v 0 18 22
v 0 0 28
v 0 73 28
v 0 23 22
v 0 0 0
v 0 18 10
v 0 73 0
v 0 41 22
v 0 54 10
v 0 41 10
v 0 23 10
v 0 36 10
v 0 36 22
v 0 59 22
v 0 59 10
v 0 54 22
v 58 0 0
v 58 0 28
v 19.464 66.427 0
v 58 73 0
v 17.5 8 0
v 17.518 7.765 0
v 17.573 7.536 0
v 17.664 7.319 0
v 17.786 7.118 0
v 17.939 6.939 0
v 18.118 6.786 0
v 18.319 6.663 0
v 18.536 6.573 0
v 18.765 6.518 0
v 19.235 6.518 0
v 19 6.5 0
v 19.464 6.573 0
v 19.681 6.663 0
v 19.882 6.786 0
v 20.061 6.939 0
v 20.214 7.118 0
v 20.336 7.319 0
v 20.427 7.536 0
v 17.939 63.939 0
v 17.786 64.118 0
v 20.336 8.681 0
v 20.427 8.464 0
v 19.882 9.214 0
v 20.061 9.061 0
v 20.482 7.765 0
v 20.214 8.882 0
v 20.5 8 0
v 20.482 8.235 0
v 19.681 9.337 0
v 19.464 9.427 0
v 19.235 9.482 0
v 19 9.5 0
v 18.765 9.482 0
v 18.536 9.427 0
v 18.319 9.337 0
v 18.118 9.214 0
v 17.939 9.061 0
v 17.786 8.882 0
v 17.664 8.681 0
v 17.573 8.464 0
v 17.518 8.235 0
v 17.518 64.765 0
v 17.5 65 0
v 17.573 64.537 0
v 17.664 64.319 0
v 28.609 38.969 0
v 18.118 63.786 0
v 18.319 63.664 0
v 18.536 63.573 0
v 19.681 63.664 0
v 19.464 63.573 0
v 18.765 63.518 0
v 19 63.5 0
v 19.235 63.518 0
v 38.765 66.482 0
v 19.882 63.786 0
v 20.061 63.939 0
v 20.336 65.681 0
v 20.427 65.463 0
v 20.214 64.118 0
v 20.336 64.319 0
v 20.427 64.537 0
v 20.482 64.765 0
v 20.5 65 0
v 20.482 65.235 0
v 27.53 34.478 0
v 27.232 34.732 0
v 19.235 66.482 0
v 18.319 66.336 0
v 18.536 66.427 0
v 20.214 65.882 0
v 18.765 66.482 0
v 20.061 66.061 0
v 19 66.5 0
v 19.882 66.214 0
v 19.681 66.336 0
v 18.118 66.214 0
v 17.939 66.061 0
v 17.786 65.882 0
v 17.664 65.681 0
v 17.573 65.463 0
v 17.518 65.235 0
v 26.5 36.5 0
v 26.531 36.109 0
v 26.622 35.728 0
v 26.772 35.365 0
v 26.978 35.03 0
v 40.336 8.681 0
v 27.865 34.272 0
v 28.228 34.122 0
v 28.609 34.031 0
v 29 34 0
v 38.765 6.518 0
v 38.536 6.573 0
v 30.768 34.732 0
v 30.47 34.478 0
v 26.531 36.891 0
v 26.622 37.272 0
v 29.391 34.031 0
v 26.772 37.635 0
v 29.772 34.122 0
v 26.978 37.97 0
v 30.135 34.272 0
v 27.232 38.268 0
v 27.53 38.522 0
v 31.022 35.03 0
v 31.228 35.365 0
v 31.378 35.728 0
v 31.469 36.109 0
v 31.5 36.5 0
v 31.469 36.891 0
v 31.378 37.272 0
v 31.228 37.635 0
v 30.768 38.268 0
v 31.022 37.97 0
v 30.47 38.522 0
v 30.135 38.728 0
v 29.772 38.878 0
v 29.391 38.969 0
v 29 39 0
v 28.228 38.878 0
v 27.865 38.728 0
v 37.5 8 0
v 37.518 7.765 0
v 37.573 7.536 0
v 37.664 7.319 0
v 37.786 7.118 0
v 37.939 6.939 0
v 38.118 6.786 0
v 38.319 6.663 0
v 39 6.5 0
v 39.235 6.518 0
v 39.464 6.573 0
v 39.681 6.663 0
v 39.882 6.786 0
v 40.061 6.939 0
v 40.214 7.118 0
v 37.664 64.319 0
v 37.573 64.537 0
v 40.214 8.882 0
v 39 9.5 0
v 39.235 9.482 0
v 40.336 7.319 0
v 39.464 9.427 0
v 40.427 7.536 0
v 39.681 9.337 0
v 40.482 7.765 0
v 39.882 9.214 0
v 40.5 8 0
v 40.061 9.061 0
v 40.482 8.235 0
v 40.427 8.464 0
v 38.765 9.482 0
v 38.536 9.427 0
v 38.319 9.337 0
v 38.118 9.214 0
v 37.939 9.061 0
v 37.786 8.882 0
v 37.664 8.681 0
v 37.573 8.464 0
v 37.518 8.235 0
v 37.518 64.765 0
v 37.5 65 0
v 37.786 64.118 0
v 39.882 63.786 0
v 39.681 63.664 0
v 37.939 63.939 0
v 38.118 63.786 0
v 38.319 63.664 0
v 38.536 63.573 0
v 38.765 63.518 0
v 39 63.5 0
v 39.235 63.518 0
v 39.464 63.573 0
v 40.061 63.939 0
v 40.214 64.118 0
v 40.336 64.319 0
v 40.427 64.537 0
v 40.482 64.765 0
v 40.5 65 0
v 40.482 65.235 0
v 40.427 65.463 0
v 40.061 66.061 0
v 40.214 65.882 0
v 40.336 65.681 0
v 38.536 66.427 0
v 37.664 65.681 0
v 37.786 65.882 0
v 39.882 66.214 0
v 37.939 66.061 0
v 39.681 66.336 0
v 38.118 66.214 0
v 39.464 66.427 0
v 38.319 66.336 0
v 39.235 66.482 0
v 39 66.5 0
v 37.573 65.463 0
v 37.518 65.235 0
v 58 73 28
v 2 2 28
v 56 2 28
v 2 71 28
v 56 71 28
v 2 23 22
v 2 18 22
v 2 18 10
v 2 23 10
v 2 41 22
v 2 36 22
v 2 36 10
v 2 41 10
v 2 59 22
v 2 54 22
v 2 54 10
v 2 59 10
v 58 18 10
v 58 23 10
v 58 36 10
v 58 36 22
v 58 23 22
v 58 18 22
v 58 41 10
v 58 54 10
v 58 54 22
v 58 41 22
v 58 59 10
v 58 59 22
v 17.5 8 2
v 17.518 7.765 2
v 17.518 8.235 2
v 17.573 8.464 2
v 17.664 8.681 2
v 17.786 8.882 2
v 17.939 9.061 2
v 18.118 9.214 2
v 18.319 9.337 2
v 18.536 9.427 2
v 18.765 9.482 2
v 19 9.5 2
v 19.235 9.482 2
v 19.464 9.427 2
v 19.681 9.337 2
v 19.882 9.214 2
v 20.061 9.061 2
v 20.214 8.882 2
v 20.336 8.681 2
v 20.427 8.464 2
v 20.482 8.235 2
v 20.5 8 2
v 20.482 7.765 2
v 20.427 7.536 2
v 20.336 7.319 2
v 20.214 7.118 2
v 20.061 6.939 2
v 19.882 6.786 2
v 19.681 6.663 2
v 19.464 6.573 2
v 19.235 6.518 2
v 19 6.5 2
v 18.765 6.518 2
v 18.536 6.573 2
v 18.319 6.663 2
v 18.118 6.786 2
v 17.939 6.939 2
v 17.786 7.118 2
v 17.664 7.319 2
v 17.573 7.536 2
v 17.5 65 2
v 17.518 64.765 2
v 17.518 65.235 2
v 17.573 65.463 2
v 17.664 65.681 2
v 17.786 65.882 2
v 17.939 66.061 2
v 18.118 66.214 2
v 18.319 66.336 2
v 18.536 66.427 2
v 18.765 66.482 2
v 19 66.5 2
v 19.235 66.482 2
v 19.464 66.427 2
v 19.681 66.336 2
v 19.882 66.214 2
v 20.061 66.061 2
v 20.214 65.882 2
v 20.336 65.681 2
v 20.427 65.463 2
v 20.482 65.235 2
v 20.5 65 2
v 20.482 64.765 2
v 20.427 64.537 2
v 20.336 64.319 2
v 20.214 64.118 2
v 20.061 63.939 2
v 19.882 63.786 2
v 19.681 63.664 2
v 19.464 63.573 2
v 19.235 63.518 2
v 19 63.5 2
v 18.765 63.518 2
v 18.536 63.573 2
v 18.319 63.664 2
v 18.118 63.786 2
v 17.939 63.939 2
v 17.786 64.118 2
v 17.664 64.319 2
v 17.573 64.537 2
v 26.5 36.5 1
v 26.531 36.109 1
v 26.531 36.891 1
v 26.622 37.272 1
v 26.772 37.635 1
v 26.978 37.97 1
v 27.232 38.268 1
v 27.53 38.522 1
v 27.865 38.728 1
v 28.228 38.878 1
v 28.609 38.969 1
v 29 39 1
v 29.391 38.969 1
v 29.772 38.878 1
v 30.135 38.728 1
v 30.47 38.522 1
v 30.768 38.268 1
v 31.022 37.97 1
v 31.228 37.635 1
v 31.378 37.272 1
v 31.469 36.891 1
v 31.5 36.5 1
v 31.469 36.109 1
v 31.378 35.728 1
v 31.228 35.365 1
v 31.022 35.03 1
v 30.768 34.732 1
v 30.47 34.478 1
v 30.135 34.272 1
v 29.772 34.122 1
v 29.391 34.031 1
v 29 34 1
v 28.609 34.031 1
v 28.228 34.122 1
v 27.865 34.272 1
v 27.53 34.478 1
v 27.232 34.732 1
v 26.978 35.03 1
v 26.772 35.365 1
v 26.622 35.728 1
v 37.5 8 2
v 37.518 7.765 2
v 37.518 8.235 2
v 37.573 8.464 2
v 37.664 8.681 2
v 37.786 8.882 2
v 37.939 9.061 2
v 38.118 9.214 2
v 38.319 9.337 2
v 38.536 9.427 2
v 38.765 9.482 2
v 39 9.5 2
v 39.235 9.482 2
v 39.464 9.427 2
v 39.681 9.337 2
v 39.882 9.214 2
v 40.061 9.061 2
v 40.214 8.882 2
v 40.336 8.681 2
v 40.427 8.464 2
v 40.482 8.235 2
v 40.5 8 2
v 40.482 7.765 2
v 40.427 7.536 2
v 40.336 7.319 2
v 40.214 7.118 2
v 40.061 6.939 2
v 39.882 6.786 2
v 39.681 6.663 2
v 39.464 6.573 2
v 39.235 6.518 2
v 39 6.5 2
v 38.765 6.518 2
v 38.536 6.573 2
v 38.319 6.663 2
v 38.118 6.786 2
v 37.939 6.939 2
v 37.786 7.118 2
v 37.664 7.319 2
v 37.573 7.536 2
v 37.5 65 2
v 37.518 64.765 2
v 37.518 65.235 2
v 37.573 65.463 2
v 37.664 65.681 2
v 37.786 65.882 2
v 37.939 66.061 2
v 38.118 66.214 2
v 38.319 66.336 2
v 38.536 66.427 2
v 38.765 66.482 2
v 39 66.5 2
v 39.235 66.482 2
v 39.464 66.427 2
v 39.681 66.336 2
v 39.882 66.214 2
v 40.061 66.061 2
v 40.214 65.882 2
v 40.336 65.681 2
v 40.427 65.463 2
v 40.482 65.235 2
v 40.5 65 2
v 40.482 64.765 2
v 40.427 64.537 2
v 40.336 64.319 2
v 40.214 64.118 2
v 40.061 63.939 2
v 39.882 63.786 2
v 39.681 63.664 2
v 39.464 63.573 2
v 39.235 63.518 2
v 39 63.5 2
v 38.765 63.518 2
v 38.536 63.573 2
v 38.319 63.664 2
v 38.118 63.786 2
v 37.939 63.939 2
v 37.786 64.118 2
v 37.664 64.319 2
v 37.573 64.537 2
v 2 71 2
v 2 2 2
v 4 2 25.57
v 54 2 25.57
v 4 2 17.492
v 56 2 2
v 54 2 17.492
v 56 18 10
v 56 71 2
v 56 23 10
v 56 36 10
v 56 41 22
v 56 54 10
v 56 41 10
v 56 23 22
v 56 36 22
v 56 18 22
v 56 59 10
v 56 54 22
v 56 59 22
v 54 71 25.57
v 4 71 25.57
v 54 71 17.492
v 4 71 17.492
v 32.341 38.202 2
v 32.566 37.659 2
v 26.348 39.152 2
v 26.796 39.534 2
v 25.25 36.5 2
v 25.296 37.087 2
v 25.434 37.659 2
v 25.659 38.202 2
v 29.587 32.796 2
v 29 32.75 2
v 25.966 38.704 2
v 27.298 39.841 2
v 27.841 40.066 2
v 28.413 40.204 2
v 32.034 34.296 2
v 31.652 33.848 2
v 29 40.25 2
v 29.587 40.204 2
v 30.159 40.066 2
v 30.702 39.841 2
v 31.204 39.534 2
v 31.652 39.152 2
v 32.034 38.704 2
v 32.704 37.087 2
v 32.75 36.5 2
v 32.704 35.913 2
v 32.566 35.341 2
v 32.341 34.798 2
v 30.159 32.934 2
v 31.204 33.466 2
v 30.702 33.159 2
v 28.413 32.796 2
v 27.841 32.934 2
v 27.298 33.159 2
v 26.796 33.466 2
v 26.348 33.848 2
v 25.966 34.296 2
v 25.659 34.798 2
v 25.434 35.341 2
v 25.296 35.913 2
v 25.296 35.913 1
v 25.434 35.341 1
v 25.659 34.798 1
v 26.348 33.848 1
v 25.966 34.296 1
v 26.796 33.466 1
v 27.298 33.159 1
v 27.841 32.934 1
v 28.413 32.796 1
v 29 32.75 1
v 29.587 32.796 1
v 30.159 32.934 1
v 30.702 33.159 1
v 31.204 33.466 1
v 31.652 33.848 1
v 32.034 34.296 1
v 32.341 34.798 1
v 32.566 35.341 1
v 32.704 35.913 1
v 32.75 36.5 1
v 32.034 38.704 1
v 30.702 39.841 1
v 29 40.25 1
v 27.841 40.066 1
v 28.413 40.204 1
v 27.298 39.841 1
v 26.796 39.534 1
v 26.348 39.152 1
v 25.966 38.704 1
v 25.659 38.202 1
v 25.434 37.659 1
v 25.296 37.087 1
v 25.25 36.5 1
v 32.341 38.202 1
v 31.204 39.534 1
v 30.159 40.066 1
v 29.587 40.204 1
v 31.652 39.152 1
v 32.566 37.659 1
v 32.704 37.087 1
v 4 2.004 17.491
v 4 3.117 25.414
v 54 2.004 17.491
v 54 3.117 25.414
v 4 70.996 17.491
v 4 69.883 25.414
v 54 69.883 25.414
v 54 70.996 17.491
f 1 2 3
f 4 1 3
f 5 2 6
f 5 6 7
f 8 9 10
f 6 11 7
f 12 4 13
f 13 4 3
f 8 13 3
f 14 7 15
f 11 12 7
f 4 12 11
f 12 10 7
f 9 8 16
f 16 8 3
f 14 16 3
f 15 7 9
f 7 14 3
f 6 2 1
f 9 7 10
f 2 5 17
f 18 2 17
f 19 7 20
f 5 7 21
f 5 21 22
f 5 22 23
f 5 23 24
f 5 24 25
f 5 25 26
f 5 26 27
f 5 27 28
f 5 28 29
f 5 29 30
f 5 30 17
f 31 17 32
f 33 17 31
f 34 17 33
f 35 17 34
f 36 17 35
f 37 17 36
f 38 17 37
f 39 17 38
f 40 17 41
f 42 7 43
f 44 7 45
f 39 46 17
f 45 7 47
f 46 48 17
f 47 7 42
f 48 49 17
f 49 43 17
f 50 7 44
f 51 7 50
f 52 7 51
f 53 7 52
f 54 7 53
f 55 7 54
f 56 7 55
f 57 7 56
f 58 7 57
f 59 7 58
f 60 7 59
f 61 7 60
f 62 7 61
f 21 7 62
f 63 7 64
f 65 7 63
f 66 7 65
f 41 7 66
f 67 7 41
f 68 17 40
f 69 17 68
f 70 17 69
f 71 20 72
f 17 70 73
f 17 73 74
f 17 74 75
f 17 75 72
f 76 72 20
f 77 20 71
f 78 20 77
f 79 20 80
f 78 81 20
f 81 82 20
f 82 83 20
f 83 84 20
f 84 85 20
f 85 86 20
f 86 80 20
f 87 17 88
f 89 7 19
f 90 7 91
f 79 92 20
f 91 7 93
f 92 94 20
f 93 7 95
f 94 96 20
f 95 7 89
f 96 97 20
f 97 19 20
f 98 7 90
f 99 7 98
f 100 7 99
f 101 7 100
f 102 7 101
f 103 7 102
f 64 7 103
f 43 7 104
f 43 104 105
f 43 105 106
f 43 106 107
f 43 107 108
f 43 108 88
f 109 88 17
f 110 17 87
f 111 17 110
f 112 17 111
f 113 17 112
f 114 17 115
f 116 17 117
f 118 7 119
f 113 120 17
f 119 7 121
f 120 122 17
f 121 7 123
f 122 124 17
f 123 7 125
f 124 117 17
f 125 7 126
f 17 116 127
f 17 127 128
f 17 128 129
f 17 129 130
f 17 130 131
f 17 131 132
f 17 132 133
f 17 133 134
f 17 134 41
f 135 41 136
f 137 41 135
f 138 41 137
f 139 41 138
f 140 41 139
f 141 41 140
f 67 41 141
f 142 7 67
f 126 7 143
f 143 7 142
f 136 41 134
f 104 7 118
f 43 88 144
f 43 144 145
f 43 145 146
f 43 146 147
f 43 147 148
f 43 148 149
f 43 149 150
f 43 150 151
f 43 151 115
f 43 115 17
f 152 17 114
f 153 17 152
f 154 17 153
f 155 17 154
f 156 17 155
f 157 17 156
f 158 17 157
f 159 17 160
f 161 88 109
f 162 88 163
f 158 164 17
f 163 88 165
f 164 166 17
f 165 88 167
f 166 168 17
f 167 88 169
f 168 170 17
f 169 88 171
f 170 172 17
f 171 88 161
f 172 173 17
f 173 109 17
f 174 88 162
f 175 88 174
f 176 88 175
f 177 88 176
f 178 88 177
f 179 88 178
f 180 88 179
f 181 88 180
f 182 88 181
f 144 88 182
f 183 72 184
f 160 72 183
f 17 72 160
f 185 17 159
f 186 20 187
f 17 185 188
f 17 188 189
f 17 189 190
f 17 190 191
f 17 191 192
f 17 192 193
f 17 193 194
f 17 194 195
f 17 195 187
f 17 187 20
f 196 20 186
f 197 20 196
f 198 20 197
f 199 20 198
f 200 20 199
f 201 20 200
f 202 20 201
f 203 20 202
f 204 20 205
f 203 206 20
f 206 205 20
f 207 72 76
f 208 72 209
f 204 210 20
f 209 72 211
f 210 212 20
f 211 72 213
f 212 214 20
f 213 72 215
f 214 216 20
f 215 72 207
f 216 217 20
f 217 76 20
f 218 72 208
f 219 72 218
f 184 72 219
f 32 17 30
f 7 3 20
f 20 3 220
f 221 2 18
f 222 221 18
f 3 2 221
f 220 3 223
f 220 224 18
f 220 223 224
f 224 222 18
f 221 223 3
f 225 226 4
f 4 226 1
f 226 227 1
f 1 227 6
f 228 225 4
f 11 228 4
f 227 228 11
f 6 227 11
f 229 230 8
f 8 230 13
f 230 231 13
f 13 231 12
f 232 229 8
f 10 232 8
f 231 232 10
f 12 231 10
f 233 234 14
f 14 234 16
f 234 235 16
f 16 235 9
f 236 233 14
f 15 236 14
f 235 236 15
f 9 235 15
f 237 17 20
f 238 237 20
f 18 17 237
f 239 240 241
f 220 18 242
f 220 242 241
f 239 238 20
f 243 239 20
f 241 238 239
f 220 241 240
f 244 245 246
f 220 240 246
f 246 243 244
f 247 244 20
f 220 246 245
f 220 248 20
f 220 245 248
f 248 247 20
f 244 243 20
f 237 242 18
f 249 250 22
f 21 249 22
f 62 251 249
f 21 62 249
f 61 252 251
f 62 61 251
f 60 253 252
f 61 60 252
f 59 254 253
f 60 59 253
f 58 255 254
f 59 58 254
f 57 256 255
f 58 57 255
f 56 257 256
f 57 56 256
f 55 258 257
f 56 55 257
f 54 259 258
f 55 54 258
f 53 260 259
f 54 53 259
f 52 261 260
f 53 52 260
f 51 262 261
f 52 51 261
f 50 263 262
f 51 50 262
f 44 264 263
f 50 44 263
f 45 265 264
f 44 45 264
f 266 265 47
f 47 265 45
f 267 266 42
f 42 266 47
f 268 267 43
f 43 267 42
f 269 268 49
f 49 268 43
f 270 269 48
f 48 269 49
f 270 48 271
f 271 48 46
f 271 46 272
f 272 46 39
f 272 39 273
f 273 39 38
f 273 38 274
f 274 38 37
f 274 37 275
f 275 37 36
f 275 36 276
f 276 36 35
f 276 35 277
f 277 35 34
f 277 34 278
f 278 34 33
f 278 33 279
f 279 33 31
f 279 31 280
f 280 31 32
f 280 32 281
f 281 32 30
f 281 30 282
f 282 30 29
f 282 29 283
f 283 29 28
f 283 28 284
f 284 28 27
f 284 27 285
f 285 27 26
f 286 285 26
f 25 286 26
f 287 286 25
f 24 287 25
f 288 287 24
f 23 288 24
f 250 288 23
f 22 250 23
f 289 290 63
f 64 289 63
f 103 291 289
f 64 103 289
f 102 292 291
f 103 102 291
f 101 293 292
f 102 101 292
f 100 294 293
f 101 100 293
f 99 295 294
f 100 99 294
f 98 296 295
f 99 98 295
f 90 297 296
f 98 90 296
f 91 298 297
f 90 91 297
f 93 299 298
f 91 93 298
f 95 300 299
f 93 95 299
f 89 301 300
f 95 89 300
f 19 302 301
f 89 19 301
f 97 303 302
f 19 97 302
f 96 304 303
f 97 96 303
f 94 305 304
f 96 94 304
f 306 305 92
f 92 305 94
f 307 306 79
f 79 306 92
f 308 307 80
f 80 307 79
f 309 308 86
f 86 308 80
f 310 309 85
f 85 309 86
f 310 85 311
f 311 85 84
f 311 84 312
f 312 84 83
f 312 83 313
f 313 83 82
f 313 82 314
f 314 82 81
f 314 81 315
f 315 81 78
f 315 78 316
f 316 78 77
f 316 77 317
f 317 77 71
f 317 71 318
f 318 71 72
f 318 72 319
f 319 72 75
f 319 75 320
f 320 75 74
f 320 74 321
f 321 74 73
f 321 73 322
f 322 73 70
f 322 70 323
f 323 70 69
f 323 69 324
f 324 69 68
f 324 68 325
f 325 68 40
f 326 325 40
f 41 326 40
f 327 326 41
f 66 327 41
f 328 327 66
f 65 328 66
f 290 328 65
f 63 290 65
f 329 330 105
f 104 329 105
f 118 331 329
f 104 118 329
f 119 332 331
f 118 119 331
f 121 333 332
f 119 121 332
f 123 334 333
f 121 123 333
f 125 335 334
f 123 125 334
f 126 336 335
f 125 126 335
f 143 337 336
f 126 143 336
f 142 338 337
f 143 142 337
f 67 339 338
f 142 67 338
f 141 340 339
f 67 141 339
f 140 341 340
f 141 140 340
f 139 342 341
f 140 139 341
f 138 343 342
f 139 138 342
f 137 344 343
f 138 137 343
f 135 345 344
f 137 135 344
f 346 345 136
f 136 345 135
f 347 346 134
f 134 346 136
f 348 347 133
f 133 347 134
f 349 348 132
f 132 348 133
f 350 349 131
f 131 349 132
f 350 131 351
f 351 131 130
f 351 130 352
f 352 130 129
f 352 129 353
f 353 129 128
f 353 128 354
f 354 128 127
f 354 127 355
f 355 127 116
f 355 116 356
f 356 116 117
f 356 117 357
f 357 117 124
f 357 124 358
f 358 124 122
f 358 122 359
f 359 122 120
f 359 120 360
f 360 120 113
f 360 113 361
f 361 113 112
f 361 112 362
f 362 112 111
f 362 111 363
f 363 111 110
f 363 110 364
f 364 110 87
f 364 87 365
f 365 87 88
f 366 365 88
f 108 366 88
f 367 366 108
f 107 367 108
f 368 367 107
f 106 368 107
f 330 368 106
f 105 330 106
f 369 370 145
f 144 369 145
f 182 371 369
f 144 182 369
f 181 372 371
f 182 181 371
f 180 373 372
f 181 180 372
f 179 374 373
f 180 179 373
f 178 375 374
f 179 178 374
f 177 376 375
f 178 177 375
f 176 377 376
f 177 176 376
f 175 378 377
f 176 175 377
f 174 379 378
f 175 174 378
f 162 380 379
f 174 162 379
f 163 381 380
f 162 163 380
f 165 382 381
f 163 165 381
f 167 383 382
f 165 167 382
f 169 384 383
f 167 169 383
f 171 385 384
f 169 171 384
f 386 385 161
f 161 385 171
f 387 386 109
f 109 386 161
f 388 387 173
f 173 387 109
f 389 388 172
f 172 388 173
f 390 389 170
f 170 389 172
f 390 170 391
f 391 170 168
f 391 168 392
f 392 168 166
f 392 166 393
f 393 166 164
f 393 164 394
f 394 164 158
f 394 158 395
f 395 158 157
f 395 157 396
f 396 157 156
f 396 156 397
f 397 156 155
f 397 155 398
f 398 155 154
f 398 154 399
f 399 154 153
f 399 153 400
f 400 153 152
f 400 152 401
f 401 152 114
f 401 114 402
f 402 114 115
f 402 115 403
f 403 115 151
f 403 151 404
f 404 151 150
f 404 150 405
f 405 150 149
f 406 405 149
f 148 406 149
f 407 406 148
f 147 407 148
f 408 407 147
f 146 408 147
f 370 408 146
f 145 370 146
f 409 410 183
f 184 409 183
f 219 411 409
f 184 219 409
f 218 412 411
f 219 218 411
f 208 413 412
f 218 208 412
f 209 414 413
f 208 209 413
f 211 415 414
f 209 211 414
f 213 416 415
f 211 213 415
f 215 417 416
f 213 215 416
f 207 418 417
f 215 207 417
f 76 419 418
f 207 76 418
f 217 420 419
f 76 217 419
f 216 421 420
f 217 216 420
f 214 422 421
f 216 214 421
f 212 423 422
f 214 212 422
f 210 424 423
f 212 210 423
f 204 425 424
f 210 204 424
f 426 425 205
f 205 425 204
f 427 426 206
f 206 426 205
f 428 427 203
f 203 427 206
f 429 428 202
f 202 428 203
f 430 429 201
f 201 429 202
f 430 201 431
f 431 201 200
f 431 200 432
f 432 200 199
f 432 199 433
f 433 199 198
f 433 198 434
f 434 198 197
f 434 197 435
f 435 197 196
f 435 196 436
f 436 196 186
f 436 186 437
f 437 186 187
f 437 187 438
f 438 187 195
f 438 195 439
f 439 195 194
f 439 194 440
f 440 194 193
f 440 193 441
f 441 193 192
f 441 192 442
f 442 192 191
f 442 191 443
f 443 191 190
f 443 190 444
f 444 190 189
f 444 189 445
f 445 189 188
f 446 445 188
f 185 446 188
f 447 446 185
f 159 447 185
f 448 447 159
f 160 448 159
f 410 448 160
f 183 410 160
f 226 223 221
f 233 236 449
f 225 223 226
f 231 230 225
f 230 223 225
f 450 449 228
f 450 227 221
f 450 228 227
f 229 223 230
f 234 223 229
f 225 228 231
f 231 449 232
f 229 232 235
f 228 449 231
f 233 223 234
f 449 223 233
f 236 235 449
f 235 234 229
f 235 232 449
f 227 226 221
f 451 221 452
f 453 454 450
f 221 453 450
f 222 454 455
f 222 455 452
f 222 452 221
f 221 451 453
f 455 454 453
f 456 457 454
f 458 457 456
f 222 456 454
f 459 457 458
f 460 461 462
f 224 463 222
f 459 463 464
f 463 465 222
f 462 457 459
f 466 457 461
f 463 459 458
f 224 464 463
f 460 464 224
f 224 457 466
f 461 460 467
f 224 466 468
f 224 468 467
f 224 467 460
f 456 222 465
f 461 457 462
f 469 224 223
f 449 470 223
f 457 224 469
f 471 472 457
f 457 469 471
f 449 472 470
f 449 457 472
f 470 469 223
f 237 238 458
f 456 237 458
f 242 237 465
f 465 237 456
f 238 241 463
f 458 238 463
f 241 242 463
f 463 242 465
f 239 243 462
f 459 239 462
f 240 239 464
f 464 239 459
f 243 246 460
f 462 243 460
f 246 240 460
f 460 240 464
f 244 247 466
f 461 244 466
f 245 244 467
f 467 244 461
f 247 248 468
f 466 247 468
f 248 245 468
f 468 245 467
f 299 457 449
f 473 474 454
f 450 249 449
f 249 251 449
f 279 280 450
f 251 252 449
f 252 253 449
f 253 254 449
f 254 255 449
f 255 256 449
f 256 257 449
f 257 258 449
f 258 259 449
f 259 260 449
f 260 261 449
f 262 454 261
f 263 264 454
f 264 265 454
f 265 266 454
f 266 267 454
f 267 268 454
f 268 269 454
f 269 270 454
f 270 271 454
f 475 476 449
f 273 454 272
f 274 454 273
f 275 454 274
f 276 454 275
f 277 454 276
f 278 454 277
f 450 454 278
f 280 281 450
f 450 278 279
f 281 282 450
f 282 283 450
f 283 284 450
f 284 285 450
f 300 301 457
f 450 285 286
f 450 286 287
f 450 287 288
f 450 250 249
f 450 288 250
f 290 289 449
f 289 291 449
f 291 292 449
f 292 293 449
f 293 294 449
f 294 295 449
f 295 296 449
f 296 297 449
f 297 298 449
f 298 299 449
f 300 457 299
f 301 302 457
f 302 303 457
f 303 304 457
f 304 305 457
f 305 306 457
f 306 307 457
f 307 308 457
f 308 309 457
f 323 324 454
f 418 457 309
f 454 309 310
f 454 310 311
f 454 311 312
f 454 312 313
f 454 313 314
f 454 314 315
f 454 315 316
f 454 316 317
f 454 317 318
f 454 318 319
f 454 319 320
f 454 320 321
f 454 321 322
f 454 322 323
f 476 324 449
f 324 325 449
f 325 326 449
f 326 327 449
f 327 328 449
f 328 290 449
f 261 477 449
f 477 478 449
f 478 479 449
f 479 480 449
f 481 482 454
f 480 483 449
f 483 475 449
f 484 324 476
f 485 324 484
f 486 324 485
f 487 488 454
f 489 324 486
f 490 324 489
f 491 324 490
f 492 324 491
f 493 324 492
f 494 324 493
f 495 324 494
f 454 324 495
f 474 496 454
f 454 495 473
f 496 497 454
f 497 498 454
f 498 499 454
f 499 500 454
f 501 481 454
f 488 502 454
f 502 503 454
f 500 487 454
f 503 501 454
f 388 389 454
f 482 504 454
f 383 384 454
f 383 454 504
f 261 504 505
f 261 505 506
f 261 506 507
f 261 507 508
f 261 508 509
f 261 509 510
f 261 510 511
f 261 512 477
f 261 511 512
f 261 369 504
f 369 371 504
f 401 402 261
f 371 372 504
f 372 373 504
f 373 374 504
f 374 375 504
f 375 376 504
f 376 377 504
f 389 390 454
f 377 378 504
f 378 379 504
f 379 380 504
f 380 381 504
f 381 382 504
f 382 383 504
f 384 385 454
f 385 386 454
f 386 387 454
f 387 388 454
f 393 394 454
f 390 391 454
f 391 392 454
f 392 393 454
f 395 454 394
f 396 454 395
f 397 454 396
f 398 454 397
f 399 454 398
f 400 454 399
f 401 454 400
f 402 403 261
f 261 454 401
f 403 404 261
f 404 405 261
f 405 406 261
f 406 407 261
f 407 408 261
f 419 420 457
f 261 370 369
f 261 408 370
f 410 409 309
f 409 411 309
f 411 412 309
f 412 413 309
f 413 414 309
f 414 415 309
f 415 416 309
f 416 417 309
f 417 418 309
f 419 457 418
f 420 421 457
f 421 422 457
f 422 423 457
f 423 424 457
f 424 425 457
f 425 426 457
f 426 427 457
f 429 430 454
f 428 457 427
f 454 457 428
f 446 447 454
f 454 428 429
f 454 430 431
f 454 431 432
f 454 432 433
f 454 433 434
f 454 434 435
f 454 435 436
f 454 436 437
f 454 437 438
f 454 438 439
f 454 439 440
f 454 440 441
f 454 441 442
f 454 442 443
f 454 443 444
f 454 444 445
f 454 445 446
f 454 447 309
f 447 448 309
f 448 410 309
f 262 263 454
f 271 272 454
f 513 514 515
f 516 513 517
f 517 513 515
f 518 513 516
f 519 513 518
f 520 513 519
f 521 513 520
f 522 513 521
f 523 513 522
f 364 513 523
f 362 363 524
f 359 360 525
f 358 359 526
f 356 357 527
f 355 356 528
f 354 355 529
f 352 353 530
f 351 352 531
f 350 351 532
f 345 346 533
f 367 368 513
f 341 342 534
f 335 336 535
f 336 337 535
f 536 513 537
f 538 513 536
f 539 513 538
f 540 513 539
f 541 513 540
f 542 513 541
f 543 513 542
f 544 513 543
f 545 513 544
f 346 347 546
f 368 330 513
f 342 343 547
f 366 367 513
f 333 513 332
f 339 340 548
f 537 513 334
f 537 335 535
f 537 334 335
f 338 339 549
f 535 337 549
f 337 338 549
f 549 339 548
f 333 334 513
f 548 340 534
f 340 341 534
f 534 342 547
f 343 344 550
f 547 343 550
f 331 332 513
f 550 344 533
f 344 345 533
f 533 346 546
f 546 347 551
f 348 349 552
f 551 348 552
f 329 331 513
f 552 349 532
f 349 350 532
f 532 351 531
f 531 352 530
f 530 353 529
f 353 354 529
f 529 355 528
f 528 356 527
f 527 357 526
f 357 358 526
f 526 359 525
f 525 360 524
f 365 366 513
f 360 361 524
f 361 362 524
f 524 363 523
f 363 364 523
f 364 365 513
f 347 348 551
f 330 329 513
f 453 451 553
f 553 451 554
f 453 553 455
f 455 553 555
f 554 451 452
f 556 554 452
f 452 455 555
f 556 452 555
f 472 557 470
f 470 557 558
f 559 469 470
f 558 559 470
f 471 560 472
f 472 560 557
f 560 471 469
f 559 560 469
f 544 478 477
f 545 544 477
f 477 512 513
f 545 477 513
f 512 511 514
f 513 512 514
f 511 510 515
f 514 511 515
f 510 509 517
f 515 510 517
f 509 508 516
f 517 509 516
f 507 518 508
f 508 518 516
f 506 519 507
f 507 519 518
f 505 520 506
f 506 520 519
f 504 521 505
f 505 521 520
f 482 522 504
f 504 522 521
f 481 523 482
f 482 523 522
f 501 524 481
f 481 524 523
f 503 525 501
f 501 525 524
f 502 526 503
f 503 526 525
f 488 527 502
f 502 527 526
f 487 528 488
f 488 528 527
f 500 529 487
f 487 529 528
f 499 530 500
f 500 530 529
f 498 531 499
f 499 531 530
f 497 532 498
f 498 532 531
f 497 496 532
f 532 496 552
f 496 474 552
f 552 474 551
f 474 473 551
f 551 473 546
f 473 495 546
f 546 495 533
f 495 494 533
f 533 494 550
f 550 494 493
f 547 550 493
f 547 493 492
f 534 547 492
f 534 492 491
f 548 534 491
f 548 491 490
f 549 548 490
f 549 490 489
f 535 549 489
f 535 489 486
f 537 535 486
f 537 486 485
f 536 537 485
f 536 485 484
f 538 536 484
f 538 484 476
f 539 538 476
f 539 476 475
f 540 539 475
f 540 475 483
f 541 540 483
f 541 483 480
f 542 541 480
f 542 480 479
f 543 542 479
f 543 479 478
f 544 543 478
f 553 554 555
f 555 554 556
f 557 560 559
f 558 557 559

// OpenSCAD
// PWM Controller Board dimensions
pwmWidth = 26;
pwmLength = 63;
pwmScrewHoleInset = 3;
pwmScrewHoleDiameter = 3;
pwmClearance = 24;

// NeoPixel Shield dimensions
neoWidth = 54;
neoLength = 69;

// cutouts
cutoutWidth = 5;
cutoutHeight = 12;

// center
centerHoleDiameter = 5;

// Padding between cavity and outer edge
wallWidth = 2;


// Go!
difference() {
  union() {
    shelves();
    walledEnclosure();
  }
  pwmScrewHoles();
  cutouts();
  centerHole();
};


module walledEnclosure() {
  difference(){
    // Main container
    cube([
      neoWidth + wallWidth*2,
      neoLength + wallWidth*2,
      pwmClearance + wallWidth*2
    ]);

    // Hollow center
    translate([wallWidth, wallWidth, wallWidth]) {
      cube([
        neoWidth,
        neoLength,
        pwmClearance*2
      ]);
    };
  };
};

module screwHole(x, y) {
  translate([x, y, -10]) {
    cylinder(
      h   = pwmClearance,
      d   = pwmScrewHoleDiameter,
      $fn = 40
    );
  };
};

module pwmScrewHoles() {
  screwHole(
    wallWidth + (neoWidth / 2)  - (pwmWidth / 2)  + pwmScrewHoleInset,
    wallWidth + (neoLength / 2) - (pwmLength / 2) + pwmScrewHoleInset
  );
  screwHole(
    wallWidth + (neoWidth / 2)  + (pwmWidth / 2)  - pwmScrewHoleInset,
    wallWidth + (neoLength / 2) - (pwmLength / 2) + pwmScrewHoleInset
  );
  screwHole(
    wallWidth + (neoWidth / 2)  - (pwmWidth / 2)  + pwmScrewHoleInset,
    wallWidth + (neoLength / 2) + (pwmLength / 2) - pwmScrewHoleInset
  );
  screwHole(
    wallWidth + (neoWidth / 2)  + (pwmWidth / 2)  - pwmScrewHoleInset,
    wallWidth + (neoLength / 2) + (pwmLength / 2) - pwmScrewHoleInset
  );
};

module shelf() {
  rotate([82, 0, 0]) {
    translate([wallWidth*2, pwmClearance*.65+wallWidth, .45]) {
      cube([neoWidth - wallWidth*2, pwmClearance/3, 2]);
    };
  };
};

module shelves() {
  shelf();
  translate([0, neoLength + 6 - wallWidth, 0])
    mirror([0,1,0])
      shelf();
};

module cutouts() {
  for (i = [1:3]) {
    translate([
      -25,
      i*neoWidth/3,
      pwmClearance - cutoutHeight - wallWidth,
    ]) {
      cube([100, cutoutWidth, cutoutHeight]);
    }
  }
}

module centerHole() {
  translate([
    wallWidth + neoWidth/2,
    wallWidth + neoLength/2,
    0,
  ]) {
    cylinder(
      h = 100,
      d = centerHoleDiameter,
      $fn = 40
    );

    translate([0,0, wallWidth-1])
    cylinder(
      h = 2,
      d = centerHoleDiameter*1.5,
      $fn = 40
    );
  };
}
